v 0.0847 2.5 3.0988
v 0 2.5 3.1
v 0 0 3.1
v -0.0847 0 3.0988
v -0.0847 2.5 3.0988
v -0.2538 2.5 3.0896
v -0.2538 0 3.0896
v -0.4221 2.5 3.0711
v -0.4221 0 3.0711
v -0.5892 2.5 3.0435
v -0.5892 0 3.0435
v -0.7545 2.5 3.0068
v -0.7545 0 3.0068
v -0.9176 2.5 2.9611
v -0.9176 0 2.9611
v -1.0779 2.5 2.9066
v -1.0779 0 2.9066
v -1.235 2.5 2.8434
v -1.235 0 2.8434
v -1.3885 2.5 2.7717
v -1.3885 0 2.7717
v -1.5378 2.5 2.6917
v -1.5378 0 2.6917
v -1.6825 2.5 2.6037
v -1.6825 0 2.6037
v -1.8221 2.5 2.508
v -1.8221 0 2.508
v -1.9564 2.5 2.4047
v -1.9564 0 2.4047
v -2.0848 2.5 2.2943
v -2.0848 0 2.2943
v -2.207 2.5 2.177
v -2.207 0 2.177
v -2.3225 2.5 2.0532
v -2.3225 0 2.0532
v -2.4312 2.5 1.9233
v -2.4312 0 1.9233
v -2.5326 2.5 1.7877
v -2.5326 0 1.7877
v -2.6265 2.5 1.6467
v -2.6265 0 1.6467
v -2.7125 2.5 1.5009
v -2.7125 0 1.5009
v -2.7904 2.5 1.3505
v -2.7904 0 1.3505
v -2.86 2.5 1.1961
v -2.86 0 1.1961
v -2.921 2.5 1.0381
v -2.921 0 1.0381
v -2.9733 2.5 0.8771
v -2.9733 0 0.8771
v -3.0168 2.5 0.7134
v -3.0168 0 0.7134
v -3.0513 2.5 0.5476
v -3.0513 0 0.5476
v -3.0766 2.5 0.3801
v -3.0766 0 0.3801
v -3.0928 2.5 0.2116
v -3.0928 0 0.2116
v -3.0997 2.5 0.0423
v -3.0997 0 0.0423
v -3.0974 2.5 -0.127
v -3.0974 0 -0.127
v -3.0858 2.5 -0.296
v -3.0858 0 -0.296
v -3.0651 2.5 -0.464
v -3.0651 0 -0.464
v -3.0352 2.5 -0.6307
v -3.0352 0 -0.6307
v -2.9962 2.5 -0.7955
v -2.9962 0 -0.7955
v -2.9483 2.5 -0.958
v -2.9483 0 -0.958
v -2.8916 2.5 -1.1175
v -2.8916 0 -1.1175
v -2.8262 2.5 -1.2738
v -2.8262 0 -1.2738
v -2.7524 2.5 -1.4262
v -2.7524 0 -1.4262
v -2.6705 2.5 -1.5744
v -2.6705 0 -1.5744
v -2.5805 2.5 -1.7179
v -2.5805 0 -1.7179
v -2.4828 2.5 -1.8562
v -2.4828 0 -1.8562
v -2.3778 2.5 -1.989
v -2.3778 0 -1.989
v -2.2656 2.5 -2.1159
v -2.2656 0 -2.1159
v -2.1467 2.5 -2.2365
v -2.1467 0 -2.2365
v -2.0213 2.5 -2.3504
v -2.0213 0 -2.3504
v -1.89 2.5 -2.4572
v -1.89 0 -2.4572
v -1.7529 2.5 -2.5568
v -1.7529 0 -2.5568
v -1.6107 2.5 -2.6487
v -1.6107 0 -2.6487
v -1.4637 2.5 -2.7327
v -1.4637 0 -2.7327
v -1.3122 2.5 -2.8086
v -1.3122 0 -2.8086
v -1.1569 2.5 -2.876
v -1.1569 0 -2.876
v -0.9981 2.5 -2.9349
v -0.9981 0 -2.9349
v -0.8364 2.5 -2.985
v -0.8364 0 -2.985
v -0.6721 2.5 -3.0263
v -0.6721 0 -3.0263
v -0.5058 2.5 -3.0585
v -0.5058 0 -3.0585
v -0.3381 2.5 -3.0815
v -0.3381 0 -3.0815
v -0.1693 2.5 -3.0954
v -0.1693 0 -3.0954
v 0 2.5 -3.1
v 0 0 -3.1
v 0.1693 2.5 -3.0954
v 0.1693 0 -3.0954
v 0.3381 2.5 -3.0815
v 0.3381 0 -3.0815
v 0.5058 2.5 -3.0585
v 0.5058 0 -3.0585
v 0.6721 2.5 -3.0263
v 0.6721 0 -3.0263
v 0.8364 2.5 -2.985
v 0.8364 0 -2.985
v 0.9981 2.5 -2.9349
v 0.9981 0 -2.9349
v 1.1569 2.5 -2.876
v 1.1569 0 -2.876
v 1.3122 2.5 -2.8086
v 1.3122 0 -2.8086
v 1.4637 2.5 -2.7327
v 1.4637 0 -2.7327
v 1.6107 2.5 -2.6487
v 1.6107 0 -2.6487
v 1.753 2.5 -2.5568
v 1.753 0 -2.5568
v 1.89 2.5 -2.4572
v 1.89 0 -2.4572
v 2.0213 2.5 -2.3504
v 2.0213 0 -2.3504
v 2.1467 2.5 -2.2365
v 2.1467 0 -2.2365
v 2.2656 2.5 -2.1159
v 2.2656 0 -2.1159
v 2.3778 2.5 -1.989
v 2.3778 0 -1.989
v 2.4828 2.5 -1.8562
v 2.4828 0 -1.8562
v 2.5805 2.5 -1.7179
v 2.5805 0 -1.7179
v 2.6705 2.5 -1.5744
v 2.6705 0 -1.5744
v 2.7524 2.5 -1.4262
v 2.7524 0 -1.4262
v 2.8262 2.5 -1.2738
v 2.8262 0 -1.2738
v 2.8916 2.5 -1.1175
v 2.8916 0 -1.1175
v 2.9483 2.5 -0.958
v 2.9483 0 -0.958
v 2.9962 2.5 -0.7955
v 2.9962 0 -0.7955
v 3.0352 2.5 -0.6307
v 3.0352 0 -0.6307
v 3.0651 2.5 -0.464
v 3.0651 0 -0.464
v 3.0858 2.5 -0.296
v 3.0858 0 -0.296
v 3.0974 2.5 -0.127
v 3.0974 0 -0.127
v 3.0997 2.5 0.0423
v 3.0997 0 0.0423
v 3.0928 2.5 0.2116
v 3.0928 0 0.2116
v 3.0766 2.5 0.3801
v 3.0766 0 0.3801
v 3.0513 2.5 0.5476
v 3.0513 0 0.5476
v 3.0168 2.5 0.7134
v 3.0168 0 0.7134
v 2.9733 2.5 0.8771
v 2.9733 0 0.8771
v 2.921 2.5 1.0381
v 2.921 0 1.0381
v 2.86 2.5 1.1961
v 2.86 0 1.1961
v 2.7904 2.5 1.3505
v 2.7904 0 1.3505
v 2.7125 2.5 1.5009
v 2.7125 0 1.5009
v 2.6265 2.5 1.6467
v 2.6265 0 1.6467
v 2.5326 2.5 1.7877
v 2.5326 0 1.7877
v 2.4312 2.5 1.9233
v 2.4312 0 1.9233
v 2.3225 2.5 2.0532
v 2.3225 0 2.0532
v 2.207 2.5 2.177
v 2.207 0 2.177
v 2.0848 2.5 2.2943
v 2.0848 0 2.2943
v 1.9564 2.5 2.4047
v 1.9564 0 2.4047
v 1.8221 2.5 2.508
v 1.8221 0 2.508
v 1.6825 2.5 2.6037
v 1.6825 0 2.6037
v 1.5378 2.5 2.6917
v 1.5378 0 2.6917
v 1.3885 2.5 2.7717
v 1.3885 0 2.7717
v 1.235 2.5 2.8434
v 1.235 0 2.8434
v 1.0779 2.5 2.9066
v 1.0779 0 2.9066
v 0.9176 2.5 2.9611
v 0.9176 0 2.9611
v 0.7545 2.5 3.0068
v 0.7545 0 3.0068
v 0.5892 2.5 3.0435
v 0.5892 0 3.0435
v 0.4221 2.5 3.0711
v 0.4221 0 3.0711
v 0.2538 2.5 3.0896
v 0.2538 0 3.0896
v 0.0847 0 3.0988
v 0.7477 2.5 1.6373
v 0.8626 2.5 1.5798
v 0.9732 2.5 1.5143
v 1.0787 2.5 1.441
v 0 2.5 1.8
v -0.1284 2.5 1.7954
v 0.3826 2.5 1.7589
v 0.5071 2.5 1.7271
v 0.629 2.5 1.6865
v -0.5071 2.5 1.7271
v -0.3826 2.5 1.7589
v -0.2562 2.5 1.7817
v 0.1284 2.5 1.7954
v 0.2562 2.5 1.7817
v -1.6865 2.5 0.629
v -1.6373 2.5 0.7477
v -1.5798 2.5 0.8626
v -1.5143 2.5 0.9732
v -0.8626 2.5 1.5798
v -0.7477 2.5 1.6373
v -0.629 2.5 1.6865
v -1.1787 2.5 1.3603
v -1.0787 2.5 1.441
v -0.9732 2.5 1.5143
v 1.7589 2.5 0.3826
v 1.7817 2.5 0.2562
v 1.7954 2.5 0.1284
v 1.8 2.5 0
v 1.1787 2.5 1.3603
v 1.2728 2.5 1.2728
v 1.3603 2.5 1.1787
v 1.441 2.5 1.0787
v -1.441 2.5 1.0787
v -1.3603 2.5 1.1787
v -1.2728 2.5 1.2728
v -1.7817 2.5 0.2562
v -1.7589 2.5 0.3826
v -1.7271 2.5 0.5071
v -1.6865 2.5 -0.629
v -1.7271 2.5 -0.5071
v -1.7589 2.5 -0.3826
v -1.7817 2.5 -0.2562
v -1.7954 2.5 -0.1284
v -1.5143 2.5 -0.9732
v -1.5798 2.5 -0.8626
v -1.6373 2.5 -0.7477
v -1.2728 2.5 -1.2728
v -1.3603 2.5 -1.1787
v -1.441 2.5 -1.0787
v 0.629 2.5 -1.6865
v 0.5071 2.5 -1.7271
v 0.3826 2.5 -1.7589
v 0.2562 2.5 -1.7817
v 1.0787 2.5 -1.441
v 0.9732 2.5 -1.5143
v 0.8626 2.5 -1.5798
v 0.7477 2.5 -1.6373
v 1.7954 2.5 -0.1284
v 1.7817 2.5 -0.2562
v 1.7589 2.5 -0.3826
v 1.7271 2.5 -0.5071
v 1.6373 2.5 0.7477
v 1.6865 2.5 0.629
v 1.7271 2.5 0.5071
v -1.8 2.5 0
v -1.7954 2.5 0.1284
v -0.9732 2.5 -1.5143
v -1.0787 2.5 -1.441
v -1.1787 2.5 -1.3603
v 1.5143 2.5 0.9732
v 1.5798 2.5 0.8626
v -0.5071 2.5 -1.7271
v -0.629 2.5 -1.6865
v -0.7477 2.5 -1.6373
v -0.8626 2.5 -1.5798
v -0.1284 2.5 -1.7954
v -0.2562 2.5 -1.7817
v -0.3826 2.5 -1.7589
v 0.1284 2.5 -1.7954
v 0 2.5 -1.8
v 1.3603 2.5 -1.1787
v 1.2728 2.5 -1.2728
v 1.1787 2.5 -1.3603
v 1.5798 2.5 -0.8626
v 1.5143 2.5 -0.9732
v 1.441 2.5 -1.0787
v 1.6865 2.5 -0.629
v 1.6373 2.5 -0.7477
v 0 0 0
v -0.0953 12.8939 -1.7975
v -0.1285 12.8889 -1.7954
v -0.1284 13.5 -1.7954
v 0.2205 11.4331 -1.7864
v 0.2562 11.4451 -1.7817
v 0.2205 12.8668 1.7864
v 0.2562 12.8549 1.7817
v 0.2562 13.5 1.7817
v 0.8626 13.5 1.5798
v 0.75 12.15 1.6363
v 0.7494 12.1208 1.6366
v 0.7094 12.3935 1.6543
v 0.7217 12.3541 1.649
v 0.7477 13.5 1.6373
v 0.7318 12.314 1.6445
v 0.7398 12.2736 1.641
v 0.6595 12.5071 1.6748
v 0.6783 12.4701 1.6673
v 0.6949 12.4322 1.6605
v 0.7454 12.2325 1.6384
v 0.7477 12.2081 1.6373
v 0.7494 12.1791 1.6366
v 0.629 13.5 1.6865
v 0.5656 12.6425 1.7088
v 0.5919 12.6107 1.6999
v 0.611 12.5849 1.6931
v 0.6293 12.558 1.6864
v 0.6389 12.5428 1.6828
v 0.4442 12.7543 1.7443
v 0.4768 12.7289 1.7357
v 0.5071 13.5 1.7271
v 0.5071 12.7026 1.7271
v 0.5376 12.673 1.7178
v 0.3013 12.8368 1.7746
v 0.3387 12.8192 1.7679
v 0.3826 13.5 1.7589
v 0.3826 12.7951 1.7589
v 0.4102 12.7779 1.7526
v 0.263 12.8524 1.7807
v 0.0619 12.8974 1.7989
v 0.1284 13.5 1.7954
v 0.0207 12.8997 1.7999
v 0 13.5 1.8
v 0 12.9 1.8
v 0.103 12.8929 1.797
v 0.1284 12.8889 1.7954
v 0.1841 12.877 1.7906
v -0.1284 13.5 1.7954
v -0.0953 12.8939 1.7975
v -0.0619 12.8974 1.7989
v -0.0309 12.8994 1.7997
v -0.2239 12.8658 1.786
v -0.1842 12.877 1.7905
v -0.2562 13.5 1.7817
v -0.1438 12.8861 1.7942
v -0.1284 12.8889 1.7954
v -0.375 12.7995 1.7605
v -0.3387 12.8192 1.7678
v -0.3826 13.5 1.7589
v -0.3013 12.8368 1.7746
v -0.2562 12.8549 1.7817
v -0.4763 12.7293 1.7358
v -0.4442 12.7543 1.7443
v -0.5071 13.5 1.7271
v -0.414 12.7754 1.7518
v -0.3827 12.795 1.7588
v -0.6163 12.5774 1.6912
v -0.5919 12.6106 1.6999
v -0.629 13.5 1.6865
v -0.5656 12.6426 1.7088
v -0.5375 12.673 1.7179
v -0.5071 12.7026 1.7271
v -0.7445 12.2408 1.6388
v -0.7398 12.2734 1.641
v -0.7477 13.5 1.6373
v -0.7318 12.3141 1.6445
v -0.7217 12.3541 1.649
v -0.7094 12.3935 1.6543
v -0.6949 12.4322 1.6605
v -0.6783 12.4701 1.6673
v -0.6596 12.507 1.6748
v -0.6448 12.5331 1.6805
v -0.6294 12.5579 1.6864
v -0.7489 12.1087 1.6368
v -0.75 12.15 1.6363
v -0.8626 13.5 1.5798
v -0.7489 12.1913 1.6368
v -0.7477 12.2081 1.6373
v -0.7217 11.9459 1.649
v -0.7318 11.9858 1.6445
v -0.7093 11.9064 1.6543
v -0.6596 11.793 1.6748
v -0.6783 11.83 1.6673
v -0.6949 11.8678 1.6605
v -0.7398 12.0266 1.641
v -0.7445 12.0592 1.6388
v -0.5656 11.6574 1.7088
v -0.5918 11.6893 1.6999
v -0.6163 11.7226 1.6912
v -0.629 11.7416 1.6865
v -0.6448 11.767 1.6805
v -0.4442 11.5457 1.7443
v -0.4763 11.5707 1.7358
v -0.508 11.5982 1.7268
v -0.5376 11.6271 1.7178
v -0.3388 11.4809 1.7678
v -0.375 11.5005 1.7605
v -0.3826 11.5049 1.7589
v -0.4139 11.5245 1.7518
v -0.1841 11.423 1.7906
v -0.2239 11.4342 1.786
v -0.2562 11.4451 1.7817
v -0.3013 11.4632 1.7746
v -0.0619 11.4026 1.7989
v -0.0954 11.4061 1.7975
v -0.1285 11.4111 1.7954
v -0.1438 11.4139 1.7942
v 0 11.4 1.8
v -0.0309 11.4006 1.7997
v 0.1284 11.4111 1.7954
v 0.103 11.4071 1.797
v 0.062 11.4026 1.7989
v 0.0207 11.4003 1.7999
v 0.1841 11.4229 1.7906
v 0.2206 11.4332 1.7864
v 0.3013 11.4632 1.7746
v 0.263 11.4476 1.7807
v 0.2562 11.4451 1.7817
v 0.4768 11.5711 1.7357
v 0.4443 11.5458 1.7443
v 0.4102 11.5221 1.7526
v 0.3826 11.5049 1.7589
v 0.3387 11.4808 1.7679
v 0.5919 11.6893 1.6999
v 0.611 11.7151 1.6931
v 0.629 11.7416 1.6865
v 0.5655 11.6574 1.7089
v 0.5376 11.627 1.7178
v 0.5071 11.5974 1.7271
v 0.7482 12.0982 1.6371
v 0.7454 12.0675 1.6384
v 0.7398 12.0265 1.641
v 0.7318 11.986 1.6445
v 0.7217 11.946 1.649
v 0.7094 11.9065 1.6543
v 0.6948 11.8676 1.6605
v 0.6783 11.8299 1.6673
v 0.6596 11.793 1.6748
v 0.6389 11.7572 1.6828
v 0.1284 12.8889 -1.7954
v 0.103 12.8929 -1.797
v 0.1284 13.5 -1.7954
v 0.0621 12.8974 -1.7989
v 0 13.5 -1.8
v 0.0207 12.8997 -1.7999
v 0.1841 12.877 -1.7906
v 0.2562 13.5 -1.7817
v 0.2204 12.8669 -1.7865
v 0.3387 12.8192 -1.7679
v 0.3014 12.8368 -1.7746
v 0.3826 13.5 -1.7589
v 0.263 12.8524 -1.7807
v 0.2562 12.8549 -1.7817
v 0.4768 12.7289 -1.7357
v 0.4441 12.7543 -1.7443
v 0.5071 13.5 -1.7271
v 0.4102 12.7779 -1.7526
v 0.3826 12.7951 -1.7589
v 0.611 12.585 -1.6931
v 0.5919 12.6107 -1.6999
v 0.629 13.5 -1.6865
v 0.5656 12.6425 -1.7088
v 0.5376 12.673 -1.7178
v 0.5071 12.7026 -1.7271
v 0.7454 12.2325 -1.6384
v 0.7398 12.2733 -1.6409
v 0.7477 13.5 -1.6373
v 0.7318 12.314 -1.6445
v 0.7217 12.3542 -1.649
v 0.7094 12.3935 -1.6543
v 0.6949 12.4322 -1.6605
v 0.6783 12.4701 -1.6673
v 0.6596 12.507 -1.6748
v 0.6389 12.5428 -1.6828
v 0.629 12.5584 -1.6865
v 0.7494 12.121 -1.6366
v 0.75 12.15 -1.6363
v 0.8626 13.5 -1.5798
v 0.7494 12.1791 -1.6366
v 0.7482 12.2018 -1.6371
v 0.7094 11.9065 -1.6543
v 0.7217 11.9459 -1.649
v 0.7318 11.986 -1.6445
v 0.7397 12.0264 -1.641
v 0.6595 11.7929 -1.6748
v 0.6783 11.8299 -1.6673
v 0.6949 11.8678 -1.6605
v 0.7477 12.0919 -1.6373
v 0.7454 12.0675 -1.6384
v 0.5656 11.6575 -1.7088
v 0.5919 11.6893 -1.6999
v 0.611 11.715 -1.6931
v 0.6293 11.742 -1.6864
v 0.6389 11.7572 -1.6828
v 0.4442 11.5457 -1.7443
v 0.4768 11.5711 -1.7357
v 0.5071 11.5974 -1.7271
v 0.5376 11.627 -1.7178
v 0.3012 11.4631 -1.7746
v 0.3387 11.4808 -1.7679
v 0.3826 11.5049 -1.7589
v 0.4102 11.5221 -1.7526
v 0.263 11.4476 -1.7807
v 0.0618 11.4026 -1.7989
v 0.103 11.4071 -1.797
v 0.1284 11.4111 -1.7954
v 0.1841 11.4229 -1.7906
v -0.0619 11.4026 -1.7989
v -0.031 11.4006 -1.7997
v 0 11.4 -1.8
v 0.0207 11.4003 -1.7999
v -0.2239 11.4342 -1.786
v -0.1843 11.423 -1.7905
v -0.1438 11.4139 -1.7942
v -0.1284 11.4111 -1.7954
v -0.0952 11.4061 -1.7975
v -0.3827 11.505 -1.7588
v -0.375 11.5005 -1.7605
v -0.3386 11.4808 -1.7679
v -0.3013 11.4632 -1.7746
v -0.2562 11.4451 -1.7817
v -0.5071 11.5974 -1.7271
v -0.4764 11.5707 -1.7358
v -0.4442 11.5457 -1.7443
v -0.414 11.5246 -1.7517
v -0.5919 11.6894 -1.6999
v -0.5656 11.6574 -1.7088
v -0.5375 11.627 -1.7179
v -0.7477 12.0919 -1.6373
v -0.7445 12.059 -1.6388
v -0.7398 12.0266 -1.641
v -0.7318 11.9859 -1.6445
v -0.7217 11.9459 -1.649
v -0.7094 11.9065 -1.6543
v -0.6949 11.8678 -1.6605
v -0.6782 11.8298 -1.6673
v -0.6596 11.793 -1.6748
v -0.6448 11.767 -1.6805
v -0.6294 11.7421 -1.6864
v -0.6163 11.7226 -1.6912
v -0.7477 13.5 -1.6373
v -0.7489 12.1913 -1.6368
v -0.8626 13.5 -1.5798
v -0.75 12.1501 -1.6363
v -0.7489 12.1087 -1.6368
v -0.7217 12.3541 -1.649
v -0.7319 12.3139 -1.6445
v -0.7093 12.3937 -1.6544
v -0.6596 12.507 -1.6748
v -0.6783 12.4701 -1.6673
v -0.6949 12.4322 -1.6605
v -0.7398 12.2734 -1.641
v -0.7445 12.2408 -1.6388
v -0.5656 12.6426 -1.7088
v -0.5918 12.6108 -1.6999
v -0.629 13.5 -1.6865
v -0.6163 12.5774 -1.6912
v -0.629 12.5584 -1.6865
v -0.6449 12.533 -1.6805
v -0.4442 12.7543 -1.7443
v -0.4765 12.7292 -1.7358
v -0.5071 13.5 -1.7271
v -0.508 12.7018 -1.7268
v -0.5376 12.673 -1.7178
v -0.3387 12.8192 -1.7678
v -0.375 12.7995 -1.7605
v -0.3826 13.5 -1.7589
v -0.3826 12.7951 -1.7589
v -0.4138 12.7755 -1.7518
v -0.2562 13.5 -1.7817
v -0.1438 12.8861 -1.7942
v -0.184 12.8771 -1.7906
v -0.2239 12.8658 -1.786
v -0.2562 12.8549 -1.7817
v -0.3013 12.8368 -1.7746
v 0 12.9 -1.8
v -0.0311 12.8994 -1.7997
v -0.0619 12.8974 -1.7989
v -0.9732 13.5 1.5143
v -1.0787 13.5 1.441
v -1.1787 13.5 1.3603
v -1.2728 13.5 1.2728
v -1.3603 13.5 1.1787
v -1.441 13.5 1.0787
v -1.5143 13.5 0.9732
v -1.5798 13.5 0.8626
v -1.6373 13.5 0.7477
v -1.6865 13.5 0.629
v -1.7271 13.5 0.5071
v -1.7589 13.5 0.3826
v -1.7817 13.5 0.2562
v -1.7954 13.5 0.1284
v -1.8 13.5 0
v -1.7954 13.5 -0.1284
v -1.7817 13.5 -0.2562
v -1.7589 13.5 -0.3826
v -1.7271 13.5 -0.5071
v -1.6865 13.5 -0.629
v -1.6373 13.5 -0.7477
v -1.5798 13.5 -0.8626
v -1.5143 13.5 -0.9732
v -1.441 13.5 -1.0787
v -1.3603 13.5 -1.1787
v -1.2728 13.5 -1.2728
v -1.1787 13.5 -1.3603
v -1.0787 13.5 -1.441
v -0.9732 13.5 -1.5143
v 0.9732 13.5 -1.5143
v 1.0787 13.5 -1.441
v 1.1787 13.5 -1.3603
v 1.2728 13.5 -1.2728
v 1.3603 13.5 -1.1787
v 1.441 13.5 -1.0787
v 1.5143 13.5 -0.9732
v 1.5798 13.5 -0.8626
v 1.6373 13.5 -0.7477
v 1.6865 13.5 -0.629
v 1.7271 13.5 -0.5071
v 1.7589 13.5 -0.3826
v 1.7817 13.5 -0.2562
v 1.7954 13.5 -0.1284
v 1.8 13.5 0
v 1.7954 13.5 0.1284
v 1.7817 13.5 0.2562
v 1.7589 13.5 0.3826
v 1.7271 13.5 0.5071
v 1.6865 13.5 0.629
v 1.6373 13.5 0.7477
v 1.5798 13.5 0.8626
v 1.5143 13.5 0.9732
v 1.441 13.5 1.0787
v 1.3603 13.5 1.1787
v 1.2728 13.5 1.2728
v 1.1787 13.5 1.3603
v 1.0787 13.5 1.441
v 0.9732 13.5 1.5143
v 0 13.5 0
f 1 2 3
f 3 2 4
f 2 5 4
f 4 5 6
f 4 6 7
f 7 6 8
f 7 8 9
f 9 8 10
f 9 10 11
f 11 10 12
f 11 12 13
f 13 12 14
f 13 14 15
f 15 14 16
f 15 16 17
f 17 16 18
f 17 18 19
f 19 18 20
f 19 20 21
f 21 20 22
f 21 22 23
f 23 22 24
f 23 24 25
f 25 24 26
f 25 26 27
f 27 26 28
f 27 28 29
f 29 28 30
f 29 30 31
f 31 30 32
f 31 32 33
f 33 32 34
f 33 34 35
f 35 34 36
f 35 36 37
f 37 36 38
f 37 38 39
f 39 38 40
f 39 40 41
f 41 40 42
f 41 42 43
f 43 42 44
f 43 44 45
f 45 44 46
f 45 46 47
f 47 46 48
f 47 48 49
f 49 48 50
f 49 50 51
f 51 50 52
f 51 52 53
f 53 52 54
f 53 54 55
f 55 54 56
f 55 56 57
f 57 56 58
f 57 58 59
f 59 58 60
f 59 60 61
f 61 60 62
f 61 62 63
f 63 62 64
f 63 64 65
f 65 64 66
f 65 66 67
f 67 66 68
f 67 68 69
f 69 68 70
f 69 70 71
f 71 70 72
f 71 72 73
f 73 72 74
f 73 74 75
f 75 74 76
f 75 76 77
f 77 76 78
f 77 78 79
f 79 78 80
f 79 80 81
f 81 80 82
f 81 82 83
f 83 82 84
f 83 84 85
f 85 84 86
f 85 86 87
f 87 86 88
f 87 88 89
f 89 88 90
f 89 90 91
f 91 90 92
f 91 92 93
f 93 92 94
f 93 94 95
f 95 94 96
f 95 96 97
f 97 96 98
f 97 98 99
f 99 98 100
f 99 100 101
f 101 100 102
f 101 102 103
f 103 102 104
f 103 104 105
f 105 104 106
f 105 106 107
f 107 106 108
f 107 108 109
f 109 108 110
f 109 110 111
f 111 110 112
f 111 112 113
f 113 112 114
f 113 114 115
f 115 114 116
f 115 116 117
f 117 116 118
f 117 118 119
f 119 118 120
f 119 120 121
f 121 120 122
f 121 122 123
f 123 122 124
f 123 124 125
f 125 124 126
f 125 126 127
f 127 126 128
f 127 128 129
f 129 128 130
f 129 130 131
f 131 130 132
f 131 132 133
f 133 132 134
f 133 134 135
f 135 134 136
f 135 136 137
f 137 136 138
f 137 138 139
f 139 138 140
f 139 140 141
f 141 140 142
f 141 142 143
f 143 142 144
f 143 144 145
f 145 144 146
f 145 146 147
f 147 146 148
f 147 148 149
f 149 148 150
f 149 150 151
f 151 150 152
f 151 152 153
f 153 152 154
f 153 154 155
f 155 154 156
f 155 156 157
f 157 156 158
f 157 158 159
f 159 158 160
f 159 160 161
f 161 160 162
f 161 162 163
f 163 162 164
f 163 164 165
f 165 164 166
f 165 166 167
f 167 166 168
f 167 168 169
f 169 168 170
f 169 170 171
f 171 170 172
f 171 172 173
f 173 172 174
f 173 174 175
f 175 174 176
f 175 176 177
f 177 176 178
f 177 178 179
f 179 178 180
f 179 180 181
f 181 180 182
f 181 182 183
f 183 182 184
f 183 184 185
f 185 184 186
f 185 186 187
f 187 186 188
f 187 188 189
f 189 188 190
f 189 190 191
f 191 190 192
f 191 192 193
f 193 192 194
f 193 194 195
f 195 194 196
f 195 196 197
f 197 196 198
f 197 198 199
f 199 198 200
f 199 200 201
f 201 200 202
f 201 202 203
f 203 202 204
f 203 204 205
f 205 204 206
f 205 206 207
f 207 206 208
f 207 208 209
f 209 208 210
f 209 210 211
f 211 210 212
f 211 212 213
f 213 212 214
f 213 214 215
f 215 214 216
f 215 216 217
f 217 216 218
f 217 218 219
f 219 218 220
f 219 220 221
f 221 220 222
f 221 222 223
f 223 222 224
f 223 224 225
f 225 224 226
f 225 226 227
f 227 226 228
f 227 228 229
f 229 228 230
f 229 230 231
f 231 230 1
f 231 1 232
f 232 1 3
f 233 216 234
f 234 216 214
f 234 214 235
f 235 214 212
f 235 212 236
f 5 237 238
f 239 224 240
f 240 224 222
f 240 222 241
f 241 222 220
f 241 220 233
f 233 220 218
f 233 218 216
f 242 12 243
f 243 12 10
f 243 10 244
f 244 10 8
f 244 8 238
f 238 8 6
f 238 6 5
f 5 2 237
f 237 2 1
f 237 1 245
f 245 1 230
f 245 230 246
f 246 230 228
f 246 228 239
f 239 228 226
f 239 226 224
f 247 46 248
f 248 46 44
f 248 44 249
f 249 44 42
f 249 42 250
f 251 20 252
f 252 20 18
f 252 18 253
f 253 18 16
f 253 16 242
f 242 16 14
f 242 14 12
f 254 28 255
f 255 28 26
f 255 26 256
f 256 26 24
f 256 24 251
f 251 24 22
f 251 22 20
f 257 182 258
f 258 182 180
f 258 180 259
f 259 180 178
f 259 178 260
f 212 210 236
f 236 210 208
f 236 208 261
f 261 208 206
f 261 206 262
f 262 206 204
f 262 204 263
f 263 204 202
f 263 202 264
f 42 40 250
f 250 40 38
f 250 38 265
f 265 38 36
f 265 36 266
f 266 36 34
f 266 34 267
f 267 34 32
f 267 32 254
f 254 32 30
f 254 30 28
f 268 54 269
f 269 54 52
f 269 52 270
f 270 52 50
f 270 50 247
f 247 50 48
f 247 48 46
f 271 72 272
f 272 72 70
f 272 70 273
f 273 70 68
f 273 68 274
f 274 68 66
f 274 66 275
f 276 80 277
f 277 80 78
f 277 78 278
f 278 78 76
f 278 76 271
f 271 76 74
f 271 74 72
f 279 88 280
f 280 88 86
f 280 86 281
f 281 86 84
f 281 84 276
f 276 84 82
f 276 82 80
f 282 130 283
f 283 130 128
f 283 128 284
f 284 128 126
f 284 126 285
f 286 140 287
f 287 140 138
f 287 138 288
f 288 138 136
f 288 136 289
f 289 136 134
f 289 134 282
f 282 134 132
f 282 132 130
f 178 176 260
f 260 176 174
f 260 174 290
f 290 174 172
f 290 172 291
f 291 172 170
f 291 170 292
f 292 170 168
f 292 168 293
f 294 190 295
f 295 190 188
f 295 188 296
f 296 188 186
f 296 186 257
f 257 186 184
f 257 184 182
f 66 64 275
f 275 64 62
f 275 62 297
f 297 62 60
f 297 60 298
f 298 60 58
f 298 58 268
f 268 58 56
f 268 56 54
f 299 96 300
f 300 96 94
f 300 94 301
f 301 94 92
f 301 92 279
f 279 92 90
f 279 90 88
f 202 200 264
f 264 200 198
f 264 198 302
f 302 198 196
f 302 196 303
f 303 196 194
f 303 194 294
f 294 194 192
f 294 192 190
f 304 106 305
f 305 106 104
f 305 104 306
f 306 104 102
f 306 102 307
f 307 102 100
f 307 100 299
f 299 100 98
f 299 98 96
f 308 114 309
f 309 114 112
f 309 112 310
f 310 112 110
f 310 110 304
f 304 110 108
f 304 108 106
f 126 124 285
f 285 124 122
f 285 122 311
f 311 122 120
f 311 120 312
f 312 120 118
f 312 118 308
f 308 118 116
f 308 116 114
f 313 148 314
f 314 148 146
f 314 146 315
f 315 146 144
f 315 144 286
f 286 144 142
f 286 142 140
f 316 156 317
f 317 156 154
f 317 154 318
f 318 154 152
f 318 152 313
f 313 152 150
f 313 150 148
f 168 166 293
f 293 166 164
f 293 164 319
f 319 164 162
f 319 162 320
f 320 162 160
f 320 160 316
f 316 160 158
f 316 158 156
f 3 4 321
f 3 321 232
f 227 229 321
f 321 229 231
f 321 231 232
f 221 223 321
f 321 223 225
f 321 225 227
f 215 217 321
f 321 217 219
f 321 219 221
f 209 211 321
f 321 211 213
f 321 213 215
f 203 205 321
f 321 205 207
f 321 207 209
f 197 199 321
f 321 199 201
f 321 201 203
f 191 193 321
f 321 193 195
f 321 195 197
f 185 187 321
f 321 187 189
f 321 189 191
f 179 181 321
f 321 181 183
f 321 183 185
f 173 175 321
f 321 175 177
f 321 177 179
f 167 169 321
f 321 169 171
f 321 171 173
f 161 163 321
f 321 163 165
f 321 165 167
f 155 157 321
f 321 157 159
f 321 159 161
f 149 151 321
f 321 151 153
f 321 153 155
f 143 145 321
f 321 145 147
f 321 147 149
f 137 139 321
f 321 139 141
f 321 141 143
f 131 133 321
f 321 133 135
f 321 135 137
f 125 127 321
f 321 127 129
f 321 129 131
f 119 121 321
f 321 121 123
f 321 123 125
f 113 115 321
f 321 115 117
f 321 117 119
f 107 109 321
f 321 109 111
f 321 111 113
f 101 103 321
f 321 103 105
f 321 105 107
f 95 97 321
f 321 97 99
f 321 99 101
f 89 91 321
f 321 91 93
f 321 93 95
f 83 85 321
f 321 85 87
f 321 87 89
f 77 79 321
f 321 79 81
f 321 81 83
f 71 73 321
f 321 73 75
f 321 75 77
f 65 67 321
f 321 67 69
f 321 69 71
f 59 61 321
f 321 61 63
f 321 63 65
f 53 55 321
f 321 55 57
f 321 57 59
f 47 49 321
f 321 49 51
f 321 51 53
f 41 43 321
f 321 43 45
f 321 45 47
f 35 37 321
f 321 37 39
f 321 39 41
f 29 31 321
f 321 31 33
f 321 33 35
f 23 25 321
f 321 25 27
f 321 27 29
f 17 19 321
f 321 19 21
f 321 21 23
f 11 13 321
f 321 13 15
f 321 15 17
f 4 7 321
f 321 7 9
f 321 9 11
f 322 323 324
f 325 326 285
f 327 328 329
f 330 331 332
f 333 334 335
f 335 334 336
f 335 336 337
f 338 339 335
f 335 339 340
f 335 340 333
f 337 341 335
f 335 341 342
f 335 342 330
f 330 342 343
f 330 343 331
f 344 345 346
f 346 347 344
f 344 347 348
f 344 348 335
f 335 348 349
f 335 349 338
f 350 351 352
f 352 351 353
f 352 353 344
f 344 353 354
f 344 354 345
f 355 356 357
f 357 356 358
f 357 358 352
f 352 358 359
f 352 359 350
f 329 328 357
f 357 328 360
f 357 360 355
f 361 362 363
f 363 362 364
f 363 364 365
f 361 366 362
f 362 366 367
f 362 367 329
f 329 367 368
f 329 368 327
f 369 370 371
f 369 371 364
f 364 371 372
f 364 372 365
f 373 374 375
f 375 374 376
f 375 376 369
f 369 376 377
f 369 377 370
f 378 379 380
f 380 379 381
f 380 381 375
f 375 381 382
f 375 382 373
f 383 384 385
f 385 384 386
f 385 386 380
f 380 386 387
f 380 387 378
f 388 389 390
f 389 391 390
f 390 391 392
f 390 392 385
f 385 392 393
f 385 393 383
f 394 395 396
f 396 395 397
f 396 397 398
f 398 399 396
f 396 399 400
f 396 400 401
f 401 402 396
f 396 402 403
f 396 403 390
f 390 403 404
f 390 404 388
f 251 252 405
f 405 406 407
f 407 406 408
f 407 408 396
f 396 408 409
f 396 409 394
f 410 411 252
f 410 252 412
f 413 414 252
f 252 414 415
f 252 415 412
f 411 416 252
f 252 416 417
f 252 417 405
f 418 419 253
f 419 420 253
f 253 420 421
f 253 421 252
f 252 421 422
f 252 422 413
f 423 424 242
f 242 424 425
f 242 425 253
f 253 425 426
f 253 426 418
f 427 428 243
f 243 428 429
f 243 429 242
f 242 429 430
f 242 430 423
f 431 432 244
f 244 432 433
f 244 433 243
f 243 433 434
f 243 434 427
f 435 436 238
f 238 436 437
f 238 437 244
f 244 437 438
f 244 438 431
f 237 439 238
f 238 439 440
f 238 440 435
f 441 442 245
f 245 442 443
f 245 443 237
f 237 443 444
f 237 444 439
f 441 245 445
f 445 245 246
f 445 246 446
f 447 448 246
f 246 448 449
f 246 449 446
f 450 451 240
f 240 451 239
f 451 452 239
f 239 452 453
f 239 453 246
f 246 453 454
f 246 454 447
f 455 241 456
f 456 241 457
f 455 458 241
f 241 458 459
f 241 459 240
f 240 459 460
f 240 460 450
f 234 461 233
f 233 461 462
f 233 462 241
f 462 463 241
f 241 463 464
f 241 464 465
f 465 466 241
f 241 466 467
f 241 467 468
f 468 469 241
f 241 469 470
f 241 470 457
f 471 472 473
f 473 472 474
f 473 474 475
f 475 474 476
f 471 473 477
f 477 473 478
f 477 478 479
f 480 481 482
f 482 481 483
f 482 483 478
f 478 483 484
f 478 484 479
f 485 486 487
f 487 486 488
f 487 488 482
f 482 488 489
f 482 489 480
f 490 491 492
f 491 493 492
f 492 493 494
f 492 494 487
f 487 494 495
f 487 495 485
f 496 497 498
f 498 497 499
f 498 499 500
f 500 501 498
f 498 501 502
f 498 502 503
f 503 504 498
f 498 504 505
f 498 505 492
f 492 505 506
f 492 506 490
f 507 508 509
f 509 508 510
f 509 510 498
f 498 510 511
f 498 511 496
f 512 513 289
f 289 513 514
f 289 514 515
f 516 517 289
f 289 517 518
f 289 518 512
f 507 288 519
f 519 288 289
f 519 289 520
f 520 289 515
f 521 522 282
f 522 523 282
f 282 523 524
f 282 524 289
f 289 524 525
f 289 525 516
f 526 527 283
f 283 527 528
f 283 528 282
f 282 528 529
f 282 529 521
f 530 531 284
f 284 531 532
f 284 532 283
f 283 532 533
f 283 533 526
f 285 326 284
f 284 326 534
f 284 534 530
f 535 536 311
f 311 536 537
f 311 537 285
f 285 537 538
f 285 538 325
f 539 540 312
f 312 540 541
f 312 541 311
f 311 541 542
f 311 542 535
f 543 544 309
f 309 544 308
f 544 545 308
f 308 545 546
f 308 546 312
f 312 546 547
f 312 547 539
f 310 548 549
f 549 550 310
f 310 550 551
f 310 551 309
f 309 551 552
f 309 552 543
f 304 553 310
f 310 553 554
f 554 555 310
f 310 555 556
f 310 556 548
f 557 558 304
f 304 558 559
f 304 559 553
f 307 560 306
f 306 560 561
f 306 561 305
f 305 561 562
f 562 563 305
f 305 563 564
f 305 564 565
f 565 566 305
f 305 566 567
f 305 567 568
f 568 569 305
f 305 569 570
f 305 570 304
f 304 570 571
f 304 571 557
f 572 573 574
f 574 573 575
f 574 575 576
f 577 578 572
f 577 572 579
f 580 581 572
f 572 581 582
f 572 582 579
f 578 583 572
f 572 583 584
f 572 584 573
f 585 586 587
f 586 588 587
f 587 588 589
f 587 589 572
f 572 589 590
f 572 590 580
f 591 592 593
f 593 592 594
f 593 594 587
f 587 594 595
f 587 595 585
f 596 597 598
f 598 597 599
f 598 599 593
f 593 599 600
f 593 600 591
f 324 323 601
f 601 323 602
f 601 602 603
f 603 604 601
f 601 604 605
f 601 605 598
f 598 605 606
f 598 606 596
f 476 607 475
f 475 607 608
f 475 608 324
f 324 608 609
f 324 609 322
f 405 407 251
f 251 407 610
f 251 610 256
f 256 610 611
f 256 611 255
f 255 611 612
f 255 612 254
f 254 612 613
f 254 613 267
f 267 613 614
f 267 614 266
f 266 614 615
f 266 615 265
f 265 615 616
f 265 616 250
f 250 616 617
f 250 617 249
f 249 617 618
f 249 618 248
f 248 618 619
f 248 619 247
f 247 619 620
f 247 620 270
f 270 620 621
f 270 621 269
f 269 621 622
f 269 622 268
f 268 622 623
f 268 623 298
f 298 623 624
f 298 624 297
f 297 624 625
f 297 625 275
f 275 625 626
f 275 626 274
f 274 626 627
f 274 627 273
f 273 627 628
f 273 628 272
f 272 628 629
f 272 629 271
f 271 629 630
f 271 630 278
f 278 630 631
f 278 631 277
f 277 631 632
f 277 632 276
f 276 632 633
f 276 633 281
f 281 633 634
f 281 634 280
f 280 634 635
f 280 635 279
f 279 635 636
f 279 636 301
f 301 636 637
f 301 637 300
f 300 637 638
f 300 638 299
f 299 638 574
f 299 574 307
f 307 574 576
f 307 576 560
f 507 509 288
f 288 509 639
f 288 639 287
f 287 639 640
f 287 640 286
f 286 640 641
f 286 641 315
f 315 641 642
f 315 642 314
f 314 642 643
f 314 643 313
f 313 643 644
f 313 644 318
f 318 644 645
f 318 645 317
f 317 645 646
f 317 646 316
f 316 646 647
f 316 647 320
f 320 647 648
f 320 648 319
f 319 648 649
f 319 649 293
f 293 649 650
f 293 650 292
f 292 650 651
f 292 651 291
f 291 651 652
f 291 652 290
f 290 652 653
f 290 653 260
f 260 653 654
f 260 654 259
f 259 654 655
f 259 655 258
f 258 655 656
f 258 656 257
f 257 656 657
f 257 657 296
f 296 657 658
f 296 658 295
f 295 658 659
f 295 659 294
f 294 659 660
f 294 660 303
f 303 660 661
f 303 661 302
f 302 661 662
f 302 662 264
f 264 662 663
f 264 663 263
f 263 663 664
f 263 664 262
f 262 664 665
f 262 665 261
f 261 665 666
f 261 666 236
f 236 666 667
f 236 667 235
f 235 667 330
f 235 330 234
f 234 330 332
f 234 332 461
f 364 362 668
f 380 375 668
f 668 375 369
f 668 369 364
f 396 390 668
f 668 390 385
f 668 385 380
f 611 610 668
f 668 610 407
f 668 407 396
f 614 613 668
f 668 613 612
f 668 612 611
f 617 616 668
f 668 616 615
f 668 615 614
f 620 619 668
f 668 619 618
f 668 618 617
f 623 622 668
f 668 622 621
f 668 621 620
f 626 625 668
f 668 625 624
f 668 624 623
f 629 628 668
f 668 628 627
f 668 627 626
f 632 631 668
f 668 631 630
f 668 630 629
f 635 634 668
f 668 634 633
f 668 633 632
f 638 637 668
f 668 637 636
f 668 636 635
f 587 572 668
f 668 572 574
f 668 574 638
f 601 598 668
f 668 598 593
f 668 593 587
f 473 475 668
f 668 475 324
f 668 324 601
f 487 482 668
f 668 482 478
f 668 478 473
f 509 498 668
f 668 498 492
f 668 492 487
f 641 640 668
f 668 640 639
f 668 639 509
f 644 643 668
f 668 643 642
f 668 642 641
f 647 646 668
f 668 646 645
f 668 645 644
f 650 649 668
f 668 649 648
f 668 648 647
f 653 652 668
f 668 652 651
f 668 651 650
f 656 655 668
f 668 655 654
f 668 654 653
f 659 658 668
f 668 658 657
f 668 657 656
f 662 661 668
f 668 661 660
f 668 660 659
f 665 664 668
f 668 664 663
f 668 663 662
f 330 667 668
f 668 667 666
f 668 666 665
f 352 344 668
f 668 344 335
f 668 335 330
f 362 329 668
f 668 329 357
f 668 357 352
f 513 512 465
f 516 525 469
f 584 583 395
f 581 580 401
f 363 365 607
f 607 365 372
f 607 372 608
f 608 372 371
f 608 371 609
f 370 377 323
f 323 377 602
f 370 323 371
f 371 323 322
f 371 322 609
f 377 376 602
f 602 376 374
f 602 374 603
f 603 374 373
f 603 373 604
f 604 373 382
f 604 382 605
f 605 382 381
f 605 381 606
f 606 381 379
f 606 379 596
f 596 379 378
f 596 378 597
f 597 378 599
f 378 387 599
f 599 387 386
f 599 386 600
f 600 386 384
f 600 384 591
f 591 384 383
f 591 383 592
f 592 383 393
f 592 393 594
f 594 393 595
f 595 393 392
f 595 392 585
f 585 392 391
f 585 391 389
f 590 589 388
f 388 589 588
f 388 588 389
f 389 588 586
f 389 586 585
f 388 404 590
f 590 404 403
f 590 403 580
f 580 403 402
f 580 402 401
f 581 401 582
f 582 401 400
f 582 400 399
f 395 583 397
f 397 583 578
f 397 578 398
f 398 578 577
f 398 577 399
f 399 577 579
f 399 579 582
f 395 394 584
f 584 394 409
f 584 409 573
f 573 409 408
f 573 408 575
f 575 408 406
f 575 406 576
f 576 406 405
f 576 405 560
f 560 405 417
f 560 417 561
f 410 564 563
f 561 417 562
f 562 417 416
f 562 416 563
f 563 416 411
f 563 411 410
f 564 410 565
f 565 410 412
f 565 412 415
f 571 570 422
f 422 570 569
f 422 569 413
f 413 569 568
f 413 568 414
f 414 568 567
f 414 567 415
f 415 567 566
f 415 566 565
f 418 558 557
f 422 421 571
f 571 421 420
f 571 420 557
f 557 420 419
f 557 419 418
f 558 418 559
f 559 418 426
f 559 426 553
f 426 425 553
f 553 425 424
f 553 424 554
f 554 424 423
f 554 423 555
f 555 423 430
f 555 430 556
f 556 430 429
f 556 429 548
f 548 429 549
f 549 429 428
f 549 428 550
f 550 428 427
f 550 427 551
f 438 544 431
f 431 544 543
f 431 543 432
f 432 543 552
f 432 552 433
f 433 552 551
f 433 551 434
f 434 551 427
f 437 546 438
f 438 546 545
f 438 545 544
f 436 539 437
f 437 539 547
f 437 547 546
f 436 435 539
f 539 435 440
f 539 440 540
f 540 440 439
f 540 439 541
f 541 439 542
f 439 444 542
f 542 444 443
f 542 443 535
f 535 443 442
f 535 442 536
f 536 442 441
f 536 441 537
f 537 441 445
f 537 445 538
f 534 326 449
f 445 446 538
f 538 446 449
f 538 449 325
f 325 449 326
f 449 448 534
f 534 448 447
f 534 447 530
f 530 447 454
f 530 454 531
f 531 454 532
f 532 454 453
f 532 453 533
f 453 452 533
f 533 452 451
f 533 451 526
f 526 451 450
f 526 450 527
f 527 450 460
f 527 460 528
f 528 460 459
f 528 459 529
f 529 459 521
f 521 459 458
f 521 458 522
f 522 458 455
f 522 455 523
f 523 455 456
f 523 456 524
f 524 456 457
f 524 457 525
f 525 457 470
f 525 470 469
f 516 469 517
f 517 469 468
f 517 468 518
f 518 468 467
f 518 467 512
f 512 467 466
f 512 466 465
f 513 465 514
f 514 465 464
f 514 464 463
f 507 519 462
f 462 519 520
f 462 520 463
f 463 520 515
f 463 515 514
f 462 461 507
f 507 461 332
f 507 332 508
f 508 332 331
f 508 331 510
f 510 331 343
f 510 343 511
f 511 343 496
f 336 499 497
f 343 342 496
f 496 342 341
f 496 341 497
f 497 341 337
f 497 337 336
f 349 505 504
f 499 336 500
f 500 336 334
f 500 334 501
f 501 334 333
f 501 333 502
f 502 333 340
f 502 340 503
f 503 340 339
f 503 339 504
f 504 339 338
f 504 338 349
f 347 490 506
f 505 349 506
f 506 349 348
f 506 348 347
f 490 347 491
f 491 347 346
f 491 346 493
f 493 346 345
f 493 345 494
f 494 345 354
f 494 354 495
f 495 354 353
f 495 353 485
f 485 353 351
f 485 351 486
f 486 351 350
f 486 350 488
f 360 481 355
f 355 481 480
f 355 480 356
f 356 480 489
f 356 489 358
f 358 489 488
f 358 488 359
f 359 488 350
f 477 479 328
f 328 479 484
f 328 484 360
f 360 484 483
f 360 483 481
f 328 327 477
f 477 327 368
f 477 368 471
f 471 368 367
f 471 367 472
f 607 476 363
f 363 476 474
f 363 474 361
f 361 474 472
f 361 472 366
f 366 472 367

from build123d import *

# Parameters (mm, degrees)
SKETCH2_R               = 3.1
BOSS_EXTRUDE1_DEPTH     = 2.5
SKETCH3_R               = 1.8
BOSS_EXTRUDE3_DEPTH     = 11
CUT_EXTRUDE1_DEPTH      = 15.194012822
CUT_EXTRUDE1_DEPTH_BACK = 15.194012822
SKETCH4_R               = 0.75


with BuildPart() as part:
    # Sketch2 → Boss-Extrude1 (new body)
    with BuildSketch(Plane(origin=(0, 0, 0), x_dir=(1, 0, 0), z_dir=(0, 1, 0))):
        with Locations(Location((0, 0, 0), (0, 0, 270))):
            Circle(SKETCH2_R)
    extrude(amount=BOSS_EXTRUDE1_DEPTH)

    # Sketch3 → Boss-Extrude3 (add)
    with BuildSketch(Plane(origin=(0, 2.5, 0), x_dir=(1, 0, 0), z_dir=(0, 1, 0))):
        with Locations(Location((0, 0, 0), (0, 0, 270))):
            Circle(SKETCH3_R)
    extrude(amount=BOSS_EXTRUDE3_DEPTH)

    # Sketch4 → Cut-Extrude1 (cut, two sides: drawn at the far end of the back side and taken through both)
    with BuildSketch(Plane.XY.offset(-CUT_EXTRUDE1_DEPTH_BACK)):
        with Locations(Location((0, 12.15, 0), (0, 0, 90))):
            Circle(SKETCH4_R)
    extrude(amount=CUT_EXTRUDE1_DEPTH + CUT_EXTRUDE1_DEPTH_BACK, mode=Mode.SUBTRACT)


solid = part.part
